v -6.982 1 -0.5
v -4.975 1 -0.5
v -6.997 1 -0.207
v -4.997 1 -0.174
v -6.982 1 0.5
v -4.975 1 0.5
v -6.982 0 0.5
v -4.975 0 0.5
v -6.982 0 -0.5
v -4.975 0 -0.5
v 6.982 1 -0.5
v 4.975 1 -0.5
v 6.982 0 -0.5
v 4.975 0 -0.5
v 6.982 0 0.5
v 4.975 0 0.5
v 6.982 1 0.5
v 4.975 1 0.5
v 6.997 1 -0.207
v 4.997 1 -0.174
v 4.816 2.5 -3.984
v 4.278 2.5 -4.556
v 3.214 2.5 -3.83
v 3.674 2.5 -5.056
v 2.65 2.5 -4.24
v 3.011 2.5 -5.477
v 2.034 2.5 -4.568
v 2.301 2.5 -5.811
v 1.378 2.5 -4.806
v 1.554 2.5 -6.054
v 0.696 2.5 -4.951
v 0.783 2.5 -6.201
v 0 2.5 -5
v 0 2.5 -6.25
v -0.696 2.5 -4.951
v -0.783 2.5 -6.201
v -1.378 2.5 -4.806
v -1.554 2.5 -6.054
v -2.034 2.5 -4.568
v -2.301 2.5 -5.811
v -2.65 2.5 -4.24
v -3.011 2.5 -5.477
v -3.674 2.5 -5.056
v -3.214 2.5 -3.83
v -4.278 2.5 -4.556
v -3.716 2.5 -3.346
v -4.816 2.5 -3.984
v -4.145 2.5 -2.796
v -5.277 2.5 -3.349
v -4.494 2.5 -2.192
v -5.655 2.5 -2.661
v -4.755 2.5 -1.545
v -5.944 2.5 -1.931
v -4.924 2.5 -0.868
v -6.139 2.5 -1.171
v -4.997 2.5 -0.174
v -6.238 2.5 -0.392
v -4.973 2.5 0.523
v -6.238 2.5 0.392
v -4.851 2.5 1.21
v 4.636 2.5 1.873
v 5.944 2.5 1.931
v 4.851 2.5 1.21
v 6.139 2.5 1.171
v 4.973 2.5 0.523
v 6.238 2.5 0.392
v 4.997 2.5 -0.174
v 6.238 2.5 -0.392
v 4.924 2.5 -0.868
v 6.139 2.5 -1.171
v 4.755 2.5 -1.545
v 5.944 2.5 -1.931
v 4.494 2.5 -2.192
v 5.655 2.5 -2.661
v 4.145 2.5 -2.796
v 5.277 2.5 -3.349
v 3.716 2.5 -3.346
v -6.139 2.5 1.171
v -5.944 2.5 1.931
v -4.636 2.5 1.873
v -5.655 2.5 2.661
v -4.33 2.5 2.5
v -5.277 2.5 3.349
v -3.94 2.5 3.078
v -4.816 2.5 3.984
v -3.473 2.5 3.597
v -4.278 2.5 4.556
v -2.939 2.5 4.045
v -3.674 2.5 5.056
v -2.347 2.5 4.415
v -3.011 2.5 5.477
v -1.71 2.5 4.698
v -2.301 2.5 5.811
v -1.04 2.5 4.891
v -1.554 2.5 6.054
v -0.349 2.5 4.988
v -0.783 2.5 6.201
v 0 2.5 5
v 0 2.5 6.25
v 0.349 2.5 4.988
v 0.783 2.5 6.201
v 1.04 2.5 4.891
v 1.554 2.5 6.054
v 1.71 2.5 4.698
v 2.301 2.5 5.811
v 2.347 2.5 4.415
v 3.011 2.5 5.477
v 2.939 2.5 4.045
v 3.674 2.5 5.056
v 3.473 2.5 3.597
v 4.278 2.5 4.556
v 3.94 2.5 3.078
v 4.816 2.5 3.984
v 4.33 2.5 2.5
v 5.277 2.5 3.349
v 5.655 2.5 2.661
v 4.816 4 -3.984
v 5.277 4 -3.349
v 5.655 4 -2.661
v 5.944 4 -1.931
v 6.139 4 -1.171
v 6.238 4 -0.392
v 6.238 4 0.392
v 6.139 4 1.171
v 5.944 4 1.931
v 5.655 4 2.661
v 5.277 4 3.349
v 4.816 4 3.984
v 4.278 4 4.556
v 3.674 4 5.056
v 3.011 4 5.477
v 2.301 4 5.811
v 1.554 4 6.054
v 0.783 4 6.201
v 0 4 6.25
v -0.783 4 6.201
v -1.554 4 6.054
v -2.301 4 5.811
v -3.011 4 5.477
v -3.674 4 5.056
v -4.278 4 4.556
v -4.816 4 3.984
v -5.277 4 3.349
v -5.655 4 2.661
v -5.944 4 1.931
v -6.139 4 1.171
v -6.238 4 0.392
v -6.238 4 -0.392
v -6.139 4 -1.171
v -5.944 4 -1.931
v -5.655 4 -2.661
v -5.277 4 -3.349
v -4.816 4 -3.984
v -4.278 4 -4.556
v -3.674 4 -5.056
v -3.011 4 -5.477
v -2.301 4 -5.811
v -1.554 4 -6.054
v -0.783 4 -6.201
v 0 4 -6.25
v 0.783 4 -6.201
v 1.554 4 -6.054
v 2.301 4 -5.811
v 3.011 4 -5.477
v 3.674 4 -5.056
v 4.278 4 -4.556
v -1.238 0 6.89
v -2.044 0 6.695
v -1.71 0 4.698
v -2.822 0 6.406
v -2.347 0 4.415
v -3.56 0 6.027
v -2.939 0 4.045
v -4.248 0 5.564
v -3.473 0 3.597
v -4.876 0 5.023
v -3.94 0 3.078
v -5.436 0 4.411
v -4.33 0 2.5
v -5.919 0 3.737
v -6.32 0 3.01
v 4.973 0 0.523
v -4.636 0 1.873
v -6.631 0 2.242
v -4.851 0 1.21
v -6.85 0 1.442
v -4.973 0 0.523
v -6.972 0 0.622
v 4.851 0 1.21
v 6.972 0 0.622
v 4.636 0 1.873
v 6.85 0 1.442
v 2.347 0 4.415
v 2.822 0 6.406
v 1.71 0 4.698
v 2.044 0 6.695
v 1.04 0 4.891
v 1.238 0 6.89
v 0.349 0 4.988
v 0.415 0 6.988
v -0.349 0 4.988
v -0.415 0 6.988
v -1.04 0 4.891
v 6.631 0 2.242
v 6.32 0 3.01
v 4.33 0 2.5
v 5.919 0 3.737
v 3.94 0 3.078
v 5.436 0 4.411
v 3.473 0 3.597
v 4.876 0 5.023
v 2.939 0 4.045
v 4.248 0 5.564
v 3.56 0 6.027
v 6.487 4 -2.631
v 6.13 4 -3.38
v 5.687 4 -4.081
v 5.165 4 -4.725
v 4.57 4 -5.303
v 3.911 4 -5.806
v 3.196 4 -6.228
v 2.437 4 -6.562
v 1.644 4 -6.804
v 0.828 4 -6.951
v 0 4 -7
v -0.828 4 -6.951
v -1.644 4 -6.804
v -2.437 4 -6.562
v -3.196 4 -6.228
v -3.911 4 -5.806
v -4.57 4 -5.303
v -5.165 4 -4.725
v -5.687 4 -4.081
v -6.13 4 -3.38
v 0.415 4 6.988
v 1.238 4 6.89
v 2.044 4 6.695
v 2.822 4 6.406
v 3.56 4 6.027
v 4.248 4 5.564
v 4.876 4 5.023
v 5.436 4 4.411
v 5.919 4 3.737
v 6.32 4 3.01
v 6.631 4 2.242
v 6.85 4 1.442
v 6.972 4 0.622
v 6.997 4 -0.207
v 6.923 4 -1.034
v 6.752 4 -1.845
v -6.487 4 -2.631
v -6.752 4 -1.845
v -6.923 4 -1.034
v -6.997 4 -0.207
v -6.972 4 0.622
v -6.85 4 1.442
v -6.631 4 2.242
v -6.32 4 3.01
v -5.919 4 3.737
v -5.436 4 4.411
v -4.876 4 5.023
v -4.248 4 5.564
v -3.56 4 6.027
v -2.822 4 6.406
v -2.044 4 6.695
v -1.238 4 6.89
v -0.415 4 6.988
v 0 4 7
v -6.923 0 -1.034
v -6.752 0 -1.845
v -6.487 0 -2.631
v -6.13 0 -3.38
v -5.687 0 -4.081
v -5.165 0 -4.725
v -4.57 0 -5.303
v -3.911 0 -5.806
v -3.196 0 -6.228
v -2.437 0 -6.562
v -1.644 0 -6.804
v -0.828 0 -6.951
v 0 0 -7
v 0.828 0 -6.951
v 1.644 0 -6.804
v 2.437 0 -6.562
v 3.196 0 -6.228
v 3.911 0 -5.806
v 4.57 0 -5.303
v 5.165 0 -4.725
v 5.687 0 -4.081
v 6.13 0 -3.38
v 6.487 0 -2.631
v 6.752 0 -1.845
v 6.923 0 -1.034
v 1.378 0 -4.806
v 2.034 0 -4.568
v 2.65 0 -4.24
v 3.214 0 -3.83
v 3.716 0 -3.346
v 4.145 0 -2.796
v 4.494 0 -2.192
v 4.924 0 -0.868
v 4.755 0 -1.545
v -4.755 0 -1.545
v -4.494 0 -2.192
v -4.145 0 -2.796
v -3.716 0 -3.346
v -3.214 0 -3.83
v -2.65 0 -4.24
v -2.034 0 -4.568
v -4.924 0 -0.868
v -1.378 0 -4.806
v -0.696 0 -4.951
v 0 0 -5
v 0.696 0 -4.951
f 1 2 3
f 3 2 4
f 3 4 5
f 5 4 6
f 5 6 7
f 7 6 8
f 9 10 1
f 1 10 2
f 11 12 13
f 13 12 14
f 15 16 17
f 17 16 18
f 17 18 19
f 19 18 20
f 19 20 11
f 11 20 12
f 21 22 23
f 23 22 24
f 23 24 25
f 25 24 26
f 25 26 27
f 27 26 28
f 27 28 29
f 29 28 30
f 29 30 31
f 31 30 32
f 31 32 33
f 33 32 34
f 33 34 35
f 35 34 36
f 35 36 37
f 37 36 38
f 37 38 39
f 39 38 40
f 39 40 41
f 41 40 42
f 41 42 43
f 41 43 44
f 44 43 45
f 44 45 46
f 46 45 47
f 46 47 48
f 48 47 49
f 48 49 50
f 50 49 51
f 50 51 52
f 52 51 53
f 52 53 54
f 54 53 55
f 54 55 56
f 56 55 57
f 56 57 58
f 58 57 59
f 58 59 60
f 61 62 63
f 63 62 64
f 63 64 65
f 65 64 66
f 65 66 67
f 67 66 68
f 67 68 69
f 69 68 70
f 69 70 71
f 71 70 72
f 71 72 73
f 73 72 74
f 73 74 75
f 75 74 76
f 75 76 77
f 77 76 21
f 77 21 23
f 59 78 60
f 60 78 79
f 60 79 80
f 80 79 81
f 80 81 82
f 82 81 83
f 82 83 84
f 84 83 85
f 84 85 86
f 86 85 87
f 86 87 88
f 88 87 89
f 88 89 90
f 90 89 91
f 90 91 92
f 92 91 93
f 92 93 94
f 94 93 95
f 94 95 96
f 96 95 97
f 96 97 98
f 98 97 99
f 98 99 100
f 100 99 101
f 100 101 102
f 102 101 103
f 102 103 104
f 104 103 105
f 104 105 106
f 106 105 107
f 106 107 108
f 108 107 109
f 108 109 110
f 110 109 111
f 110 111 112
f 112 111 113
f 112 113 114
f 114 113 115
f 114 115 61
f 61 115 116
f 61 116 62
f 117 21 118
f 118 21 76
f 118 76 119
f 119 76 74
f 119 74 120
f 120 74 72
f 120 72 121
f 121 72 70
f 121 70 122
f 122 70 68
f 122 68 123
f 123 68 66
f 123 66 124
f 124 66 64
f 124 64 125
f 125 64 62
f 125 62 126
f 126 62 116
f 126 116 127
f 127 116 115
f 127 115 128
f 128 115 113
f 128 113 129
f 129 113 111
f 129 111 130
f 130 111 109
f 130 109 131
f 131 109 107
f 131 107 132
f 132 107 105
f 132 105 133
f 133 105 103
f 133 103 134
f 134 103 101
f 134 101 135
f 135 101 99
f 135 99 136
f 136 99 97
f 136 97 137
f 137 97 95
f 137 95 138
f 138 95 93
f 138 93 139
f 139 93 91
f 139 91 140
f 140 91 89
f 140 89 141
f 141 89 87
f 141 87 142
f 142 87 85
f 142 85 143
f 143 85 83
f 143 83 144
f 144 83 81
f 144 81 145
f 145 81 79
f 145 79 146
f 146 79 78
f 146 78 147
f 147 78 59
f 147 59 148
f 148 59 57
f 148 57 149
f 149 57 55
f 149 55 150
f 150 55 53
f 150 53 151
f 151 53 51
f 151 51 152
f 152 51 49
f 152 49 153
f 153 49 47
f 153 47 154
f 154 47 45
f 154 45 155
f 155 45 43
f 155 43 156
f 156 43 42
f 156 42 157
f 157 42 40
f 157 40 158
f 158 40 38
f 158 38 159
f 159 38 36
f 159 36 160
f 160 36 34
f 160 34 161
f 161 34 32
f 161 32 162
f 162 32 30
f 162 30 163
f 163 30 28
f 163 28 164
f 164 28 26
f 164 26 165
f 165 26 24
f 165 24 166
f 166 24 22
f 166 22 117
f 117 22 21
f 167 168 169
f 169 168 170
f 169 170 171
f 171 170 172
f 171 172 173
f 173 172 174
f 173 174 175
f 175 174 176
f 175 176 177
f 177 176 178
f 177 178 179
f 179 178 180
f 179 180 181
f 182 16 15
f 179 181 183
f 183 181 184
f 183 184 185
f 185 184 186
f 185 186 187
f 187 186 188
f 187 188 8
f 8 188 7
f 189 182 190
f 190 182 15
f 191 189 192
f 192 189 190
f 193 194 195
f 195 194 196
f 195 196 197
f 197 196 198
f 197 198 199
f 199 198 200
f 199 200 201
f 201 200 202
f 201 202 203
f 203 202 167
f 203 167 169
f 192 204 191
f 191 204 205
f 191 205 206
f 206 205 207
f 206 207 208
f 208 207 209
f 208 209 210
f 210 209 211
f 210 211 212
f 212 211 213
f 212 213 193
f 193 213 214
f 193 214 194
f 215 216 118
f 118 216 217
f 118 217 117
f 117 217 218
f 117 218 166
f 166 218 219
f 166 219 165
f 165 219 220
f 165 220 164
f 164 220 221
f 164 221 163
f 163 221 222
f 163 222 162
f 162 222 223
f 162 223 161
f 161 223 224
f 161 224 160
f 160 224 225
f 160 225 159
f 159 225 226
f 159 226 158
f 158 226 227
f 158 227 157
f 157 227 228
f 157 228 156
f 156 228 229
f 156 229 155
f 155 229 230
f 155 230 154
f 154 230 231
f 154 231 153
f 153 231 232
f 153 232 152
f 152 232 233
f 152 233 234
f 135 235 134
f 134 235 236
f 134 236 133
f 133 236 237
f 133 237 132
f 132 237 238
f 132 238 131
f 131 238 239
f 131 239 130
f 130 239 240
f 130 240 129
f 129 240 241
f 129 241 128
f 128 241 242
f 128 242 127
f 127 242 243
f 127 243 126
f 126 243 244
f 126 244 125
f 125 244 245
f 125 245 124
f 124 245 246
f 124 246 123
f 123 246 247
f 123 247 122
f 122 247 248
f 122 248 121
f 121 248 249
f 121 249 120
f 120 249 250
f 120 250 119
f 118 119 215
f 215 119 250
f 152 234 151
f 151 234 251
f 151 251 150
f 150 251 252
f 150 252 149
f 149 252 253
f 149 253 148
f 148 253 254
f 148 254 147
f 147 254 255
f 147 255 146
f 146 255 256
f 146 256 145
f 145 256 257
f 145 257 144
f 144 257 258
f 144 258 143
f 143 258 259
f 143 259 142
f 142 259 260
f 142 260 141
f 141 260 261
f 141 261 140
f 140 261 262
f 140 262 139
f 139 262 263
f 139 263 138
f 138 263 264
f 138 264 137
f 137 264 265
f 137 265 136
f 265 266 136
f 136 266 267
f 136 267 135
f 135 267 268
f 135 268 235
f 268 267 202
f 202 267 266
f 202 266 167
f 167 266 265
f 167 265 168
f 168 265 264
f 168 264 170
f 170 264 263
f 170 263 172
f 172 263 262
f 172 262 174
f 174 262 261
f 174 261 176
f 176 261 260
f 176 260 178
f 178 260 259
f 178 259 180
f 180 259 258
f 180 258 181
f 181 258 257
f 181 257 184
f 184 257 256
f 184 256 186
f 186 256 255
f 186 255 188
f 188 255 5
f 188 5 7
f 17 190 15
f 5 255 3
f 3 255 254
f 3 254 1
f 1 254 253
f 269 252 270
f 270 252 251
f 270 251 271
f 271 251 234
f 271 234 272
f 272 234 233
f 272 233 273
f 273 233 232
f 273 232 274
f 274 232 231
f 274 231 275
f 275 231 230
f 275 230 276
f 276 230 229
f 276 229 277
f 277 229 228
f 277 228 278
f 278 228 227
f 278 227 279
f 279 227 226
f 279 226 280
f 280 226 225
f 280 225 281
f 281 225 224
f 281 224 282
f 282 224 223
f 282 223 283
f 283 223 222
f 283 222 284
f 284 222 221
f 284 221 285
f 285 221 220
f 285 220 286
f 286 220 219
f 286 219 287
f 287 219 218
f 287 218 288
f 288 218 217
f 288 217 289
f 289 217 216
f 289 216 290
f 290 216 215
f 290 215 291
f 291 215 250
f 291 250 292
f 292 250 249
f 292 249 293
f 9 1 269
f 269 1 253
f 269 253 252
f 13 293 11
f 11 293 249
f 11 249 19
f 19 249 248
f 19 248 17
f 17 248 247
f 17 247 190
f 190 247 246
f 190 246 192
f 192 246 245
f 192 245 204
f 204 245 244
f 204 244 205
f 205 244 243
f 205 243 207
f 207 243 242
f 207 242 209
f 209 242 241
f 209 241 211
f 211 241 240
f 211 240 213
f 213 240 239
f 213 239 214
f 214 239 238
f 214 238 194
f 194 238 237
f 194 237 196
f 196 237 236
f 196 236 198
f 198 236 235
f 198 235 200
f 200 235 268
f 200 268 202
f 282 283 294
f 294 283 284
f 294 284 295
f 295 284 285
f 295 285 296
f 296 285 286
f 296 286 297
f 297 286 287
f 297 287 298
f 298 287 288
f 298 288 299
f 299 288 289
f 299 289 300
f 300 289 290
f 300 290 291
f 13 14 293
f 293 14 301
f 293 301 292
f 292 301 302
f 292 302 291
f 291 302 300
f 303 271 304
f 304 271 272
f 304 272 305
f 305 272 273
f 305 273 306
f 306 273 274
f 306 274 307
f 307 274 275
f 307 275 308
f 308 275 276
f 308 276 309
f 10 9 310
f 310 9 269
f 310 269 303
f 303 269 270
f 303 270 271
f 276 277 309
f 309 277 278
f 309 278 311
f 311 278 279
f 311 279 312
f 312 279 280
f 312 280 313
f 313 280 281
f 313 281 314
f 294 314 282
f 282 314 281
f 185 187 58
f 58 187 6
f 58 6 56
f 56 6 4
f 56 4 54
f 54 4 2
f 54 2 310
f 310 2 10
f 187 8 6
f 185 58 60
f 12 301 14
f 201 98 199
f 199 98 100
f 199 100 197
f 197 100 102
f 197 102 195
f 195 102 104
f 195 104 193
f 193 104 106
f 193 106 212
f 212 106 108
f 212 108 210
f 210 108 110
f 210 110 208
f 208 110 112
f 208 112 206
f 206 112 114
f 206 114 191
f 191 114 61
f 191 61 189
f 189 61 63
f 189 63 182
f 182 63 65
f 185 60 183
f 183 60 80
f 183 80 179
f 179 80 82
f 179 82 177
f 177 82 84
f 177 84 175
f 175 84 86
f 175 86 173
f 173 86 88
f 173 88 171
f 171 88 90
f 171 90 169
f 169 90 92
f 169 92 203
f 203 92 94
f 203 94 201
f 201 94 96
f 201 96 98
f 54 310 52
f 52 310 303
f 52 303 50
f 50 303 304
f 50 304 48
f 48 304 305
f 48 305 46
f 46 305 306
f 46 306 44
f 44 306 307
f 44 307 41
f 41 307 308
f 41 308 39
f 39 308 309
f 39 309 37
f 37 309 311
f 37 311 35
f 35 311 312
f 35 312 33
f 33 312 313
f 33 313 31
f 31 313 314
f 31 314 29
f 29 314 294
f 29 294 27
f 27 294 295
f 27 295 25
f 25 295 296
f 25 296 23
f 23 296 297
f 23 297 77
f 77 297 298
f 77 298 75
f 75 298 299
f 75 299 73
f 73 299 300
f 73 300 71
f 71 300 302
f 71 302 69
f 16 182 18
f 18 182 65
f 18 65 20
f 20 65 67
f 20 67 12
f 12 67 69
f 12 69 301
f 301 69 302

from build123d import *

# Parameters (mm, degrees)
SKETCH1_R           = 7
BOSS_EXTRUDE1_DEPTH = 4
SKETCH2_R           = 6.25
CUT_EXTRUDE1_DEPTH  = 1.5
SKETCH3_R           = 5
CUT_EXTRUDE2_DEPTH  = 5
SKETCH4_W           = 16
SKETCH4_H           = 1
CUT_EXTRUDE3_DEPTH  = 1


with BuildPart() as part:
    # Sketch1 → Boss-Extrude1 (new body)
    with BuildSketch(Plane(origin=(0, 0, 0), x_dir=(1, 0, 0), z_dir=(0, 1, 0))):
        Circle(SKETCH1_R)
    extrude(amount=BOSS_EXTRUDE1_DEPTH)

    # Sketch2 → Cut-Extrude1 (cut)
    with BuildSketch(Plane(origin=(0, 4, 0), x_dir=(1, 0, 0), z_dir=(0, 1, 0))):
        Circle(SKETCH2_R)
    extrude(amount=-CUT_EXTRUDE1_DEPTH, mode=Mode.SUBTRACT)

    # Sketch3 → Cut-Extrude2 (cut, through all)
    with BuildSketch(Plane.XZ):
        Circle(SKETCH3_R)
    extrude(amount=-CUT_EXTRUDE2_DEPTH, mode=Mode.SUBTRACT)

    # Sketch4 → Cut-Extrude3 (cut)
    with BuildSketch(Plane.XZ):
        Rectangle(SKETCH4_W, SKETCH4_H)
    extrude(amount=-CUT_EXTRUDE3_DEPTH, mode=Mode.SUBTRACT)


solid = part.part
